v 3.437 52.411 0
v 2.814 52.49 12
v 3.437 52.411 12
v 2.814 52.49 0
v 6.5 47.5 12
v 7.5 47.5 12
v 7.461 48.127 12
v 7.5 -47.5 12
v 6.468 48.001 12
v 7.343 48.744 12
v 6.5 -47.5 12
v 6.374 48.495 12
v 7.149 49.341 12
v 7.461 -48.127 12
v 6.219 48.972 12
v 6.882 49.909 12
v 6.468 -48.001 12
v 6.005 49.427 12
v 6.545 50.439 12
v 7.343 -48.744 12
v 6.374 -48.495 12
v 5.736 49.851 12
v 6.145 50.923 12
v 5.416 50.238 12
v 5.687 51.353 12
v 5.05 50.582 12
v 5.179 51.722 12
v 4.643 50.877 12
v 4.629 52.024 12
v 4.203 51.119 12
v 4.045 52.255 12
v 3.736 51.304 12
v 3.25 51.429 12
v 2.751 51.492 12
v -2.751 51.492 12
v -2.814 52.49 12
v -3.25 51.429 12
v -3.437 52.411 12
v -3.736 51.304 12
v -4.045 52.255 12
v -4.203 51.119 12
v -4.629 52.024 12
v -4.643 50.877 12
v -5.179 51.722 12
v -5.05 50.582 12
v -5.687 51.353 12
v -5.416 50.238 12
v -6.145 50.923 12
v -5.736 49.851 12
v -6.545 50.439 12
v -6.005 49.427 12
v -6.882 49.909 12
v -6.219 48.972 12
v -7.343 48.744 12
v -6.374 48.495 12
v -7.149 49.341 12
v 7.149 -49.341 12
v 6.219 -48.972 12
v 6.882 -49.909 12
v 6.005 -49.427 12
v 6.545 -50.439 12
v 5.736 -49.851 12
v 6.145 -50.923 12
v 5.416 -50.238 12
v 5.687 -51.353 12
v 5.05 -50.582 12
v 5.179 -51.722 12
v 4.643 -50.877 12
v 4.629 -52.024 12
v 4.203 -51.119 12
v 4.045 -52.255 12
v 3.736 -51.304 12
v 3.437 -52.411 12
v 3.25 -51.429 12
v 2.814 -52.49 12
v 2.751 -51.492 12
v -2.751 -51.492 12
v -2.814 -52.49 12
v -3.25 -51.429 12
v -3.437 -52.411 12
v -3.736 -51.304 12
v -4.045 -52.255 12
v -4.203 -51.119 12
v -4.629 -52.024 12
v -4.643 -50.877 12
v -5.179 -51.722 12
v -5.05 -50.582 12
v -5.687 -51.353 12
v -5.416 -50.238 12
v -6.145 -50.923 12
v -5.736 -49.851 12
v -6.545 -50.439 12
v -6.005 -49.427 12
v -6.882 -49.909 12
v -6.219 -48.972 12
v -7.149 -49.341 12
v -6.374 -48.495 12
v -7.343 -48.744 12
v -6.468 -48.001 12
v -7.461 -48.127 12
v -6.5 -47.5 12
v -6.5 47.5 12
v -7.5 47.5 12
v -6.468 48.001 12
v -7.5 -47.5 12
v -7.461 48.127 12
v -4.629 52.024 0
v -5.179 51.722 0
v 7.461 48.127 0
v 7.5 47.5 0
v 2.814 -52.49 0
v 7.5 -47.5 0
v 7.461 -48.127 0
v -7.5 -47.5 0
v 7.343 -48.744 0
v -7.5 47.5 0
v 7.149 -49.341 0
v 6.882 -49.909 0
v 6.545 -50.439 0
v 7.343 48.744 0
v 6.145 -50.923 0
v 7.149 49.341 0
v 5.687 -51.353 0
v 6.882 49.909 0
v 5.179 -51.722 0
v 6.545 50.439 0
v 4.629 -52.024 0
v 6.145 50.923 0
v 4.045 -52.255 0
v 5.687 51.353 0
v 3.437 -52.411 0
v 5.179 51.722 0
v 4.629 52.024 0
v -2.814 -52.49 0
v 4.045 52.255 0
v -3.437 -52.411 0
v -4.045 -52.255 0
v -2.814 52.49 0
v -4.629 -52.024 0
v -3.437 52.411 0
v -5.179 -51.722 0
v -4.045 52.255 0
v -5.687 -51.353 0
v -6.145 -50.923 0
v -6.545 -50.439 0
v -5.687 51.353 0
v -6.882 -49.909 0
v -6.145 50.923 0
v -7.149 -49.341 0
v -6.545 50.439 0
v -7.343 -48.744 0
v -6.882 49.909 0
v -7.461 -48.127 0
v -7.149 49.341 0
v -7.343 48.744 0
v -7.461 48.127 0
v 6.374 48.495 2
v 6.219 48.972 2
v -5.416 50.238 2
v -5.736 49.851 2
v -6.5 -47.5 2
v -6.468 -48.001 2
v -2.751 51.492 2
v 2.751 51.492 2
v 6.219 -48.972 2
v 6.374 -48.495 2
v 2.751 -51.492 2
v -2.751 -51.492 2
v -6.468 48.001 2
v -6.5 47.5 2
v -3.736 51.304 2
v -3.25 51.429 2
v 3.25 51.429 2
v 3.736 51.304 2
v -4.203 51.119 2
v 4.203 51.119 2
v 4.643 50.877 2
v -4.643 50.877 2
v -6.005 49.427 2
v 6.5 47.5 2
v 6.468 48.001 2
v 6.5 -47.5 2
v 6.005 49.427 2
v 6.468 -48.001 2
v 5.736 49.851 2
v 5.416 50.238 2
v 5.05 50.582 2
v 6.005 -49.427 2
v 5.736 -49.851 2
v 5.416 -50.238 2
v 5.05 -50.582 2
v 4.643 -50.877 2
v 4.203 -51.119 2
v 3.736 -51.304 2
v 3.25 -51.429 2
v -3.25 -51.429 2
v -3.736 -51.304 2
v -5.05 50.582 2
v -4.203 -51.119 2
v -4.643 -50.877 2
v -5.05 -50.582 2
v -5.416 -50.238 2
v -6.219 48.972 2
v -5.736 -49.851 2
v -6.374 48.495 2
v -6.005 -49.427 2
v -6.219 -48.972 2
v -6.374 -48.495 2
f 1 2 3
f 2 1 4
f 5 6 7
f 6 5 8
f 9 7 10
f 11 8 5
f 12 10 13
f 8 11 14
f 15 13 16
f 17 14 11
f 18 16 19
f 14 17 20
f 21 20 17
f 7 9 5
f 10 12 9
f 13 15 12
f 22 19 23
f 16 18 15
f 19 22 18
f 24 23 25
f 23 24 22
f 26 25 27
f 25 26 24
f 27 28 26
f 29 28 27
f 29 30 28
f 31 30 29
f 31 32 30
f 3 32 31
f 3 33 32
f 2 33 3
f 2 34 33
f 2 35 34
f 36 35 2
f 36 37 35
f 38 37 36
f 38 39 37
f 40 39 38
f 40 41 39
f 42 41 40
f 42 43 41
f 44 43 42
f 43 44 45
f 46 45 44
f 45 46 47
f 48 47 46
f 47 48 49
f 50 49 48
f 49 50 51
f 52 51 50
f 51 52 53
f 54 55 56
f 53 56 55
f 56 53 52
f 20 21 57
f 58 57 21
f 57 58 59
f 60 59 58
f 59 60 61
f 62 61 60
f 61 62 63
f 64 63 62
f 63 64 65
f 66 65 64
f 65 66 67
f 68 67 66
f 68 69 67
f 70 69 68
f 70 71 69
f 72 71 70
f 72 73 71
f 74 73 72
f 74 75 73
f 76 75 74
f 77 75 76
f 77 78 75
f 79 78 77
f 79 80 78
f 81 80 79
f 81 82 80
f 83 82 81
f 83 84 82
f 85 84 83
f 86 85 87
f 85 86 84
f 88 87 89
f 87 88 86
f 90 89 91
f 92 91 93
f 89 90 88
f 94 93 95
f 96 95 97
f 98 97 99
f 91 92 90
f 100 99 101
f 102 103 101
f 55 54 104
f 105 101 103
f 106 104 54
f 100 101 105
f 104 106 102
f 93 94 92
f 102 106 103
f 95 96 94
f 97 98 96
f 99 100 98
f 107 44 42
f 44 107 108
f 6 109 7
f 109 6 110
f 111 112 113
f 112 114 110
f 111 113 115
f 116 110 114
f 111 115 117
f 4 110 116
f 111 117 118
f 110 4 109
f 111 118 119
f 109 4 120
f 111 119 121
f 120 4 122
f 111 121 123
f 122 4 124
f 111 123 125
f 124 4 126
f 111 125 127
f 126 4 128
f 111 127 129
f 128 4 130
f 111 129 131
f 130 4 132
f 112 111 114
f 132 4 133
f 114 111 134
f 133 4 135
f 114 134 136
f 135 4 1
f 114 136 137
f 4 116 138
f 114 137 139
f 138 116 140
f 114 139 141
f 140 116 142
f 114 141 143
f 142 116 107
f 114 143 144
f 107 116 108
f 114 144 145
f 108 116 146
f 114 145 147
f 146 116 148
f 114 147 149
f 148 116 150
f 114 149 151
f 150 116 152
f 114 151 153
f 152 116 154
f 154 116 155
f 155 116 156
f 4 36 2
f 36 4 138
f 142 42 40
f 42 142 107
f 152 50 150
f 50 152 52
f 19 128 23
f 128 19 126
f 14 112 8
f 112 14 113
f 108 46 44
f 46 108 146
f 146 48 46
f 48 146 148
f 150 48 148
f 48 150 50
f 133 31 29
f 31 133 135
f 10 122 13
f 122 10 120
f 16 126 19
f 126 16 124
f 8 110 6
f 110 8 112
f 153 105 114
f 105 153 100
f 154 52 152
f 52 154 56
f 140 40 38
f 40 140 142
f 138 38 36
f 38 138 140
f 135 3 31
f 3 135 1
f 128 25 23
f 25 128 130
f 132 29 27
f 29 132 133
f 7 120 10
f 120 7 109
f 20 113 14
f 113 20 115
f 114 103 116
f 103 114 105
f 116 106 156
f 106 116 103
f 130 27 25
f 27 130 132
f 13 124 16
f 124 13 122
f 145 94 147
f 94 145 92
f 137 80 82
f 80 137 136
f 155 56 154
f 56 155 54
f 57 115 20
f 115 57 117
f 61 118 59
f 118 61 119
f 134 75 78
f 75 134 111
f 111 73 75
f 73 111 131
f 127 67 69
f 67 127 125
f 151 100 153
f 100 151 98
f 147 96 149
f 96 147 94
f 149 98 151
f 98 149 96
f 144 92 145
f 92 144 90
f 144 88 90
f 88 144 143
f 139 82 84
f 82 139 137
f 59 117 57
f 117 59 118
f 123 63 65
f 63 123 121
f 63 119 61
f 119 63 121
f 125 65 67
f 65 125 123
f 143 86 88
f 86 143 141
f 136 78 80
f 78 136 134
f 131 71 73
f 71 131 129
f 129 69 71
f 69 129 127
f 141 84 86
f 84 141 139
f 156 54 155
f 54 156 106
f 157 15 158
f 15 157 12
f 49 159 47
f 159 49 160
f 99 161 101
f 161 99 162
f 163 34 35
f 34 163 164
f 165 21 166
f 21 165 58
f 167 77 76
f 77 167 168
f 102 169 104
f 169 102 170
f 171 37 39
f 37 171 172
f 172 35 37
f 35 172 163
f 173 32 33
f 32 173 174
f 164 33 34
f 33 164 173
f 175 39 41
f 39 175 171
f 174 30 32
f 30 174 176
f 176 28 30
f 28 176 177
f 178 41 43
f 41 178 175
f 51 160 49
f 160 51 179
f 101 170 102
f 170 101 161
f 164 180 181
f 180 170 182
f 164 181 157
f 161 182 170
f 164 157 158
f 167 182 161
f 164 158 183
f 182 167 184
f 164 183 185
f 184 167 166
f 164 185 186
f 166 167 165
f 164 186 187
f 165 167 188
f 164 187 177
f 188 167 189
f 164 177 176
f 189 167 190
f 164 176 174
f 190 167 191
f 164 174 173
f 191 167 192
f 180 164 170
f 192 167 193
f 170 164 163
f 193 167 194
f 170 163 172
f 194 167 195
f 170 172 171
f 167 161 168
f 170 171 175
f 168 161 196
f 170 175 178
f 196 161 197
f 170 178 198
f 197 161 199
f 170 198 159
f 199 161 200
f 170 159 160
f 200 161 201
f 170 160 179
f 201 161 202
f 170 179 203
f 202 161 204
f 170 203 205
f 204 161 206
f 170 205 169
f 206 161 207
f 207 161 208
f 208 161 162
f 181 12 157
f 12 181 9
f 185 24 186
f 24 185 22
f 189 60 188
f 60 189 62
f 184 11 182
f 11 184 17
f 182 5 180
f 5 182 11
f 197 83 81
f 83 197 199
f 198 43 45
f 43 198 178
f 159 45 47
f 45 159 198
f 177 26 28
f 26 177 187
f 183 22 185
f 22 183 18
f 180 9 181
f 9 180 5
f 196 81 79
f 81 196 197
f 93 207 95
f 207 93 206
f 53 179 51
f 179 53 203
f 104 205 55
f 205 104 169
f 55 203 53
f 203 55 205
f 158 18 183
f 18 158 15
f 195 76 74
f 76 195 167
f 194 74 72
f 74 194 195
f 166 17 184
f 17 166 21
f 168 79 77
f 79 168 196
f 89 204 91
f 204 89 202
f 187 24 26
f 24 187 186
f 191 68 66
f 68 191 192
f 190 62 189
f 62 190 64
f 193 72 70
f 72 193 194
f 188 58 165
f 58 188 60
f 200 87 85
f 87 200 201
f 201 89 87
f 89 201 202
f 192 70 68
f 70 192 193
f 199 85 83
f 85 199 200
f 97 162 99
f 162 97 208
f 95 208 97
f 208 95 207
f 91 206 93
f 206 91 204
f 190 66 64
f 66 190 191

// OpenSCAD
$fn = 50;


difference() {
	union() {
		hull() {
			translate(v = [-2.5000000000, 47.5000000000, 0]) {
				cylinder(h = 12, r = 5);
			}
			translate(v = [2.5000000000, 47.5000000000, 0]) {
				cylinder(h = 12, r = 5);
			}
			translate(v = [-2.5000000000, -47.5000000000, 0]) {
				cylinder(h = 12, r = 5);
			}
			translate(v = [2.5000000000, -47.5000000000, 0]) {
				cylinder(h = 12, r = 5);
			}
		}
	}
	union() {
		translate(v = [0, 0, 2]) {
			hull() {
				translate(v = [-2.5000000000, 47.5000000000, 0]) {
					cylinder(h = 10, r = 4);
				}
				translate(v = [2.5000000000, 47.5000000000, 0]) {
					cylinder(h = 10, r = 4);
				}
				translate(v = [-2.5000000000, -47.5000000000, 0]) {
					cylinder(h = 10, r = 4);
				}
				translate(v = [2.5000000000, -47.5000000000, 0]) {
					cylinder(h = 10, r = 4);
				}
			}
		}
	}
}
